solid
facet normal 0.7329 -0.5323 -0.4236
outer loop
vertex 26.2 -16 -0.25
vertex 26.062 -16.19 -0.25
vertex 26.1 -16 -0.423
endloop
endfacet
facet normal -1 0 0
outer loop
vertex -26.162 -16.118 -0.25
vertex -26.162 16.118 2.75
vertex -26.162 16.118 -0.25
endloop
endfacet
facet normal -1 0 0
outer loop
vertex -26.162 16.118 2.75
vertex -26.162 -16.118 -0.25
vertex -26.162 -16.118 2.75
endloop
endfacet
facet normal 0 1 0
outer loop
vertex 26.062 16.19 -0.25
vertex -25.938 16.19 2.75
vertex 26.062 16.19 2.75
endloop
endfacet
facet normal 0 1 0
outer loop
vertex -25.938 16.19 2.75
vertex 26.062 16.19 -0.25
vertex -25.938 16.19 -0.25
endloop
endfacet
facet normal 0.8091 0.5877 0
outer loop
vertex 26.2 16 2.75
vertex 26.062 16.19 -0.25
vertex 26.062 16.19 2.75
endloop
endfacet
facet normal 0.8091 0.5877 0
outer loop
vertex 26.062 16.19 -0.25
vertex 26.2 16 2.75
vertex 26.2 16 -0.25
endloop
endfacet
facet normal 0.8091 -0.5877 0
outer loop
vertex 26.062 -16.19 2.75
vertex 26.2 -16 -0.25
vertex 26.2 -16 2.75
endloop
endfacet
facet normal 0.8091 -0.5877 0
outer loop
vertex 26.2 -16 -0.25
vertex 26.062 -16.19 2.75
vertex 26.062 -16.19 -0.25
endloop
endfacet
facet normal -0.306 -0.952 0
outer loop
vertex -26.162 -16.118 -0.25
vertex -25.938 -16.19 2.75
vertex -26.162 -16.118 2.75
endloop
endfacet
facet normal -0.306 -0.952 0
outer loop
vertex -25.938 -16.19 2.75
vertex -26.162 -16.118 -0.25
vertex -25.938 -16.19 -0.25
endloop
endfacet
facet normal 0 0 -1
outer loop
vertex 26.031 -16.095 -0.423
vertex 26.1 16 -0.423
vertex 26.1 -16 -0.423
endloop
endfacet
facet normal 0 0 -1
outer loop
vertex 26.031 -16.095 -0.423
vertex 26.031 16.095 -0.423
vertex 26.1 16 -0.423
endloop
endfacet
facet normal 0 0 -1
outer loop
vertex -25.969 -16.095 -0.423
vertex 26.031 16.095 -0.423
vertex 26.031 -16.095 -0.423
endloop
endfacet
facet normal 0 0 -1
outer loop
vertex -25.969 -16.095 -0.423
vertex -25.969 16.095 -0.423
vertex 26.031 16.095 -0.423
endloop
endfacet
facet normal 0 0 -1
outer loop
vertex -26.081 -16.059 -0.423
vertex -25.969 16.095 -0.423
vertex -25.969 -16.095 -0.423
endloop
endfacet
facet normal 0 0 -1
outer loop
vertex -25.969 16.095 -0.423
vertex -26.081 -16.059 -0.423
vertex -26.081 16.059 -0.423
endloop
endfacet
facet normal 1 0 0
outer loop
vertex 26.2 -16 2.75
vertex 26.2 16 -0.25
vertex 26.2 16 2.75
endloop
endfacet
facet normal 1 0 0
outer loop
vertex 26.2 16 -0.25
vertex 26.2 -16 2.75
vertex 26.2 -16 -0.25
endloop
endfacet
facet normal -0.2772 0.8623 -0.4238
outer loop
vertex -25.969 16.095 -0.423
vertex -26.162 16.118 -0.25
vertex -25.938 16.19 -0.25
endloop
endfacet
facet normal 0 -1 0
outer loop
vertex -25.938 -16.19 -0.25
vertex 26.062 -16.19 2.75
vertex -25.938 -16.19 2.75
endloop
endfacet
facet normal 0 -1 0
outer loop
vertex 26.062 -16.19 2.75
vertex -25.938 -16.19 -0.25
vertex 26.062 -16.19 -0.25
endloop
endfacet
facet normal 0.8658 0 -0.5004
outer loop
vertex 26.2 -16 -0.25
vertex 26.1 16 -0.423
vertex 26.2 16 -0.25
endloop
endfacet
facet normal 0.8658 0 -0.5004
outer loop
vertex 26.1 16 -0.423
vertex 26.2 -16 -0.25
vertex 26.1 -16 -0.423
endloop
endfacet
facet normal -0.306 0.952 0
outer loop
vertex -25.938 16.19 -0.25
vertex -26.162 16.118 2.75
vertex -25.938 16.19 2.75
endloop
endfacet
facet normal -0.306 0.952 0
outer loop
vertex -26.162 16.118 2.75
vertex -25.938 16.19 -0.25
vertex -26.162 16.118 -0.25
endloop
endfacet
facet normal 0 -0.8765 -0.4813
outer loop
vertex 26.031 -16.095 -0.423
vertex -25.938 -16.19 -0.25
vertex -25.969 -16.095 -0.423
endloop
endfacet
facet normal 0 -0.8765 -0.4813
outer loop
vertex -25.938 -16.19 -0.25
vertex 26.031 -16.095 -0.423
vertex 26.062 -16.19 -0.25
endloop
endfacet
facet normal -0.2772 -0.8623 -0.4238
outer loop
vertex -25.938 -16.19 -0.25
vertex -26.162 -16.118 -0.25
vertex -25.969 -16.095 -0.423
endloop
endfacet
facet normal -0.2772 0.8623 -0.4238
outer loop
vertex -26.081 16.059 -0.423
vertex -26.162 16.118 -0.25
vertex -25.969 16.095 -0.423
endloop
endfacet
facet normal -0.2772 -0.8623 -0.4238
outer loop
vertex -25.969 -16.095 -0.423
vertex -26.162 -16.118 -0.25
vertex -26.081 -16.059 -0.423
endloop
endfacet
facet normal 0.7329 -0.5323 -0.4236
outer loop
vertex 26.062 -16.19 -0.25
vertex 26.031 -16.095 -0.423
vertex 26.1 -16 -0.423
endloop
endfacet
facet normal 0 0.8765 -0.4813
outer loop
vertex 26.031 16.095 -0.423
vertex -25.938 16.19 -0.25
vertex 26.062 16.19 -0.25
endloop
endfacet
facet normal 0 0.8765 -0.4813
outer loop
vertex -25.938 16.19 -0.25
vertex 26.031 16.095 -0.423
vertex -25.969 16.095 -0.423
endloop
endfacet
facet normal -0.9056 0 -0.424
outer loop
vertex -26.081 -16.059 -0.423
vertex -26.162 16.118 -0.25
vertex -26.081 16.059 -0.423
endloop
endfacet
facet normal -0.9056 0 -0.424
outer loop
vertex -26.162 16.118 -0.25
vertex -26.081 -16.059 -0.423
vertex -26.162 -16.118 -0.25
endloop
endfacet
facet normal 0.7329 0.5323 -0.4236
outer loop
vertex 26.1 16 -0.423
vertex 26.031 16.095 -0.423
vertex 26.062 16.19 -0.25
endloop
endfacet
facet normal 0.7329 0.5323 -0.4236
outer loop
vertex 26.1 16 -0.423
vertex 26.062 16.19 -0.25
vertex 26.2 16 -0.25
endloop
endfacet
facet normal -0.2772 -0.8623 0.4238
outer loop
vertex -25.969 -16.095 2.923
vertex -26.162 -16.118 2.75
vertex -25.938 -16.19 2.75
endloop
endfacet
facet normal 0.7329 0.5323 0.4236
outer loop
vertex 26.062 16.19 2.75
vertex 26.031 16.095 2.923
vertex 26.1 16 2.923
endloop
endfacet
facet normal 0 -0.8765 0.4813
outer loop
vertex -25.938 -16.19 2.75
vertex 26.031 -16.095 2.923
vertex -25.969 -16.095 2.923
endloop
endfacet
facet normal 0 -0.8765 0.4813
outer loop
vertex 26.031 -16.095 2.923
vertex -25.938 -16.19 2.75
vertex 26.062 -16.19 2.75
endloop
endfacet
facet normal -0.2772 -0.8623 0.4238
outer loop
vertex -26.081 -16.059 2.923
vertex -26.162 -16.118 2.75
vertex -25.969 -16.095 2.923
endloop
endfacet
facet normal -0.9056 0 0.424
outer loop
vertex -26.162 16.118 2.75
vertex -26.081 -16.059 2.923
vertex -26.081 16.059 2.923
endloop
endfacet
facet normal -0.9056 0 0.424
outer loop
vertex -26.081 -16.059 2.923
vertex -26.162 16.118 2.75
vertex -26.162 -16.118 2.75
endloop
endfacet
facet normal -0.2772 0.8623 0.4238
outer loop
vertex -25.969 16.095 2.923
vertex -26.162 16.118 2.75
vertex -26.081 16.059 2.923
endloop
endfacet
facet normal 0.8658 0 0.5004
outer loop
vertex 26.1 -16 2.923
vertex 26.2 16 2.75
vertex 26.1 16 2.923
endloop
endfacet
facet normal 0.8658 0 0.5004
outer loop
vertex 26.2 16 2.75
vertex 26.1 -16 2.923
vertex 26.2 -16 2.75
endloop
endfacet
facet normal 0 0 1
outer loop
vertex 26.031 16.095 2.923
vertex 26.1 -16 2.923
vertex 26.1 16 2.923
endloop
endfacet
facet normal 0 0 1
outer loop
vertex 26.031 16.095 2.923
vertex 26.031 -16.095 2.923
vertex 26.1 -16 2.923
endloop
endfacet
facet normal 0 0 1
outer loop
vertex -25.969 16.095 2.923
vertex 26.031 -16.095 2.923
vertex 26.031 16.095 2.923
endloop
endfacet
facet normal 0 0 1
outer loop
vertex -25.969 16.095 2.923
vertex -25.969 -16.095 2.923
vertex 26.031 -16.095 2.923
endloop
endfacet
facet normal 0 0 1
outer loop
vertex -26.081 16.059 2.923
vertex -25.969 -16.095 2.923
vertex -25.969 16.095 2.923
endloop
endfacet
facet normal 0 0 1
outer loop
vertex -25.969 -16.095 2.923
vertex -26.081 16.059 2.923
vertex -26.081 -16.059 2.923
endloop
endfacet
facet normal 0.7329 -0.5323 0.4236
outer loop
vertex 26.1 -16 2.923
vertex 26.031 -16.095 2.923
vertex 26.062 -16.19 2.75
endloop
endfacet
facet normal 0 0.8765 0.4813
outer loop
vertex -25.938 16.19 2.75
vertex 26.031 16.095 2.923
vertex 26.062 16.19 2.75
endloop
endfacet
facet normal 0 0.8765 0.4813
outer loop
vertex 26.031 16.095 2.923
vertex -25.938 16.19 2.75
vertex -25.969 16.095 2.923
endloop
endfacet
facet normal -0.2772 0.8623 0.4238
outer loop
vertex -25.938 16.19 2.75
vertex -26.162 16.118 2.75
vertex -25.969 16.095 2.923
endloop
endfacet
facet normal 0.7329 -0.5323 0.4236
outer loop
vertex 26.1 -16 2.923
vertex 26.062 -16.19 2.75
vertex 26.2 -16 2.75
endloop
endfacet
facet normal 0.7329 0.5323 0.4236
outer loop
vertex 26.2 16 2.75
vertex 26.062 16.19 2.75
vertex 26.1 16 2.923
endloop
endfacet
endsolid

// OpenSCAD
// Define the dimensions of the rectangular plate
module rectangular_plate(length, width, thickness) {
    // Adjusted thickness to match original model
    cube([length, width, thickness], center = true);
}

// Parameters for the rectangular plate
plate_length = 50;  // Length of the plate
plate_width = 30;   // Width of the plate
plate_thickness = 0.5; // Thickness of the plate (reduced to match original model)

// Number of plates
num_plates = 6;

// Stack the plates uniformly in the same vertical alignment
for (i = [0 : num_plates - 1]) {
    translate([0, 0, i * plate_thickness])
        rectangular_plate(plate_length, plate_width, plate_thickness);
}

// Refinements for smooth edges and polished surface
module refined_plate(length, width, thickness) {
    // Adding fillet for smooth edges
    minkowski() {
        cube([length, width, thickness], center = true);
        sphere(0.2); // Smaller sphere for edge smoothing to remove taper
    }
}

// Replace rectangular_plate with refined_plate for smoother edges
for (i = [0 : num_plates - 1]) {
    translate([0, 0, i * plate_thickness])
        refined_plate(plate_length, plate_width, plate_thickness);
}

// Ensure alignment and flatness
translate([0, 0, 0]) {
    for (i = [0 : num_plates - 1]) {
        translate([0, 0, i * plate_thickness])
            refined_plate(plate_length, plate_width, plate_thickness);
    }
}

// Adjust orientation to ensure plates are flat and aligned
rotate([0, 0, 0]) { // Remove any tilt or angular orientation
    for (i = [0 : num_plates - 1]) {
        translate([0, 0, i * plate_thickness])
            refined_plate(plate_length, plate_width, plate_thickness);
    }
}

// Adjust dimensions to match the original model's surface area
plate_length = 52;  // Increased length to match original model
plate_width = 32;   // Increased width to match original model

// Flatten any curvature along the edges
module flat_plate(length, width, thickness) {
    cube([length, width, thickness], center = true);
}

// Replace refined_plate with flat_plate to ensure flat edges
for (i = [0 : num_plates - 1]) {
    translate([0, 0, i * plate_thickness])
        flat_plate(plate_length, plate_width, plate_thickness);
}

// Adjust position to align plates vertically
translate([0, 0, 0]) {
    for (i = [0 : num_plates - 1]) {
        translate([0, 0, i * plate_thickness])
            flat_plate(plate_length, plate_width, plate_thickness);
    }
}
